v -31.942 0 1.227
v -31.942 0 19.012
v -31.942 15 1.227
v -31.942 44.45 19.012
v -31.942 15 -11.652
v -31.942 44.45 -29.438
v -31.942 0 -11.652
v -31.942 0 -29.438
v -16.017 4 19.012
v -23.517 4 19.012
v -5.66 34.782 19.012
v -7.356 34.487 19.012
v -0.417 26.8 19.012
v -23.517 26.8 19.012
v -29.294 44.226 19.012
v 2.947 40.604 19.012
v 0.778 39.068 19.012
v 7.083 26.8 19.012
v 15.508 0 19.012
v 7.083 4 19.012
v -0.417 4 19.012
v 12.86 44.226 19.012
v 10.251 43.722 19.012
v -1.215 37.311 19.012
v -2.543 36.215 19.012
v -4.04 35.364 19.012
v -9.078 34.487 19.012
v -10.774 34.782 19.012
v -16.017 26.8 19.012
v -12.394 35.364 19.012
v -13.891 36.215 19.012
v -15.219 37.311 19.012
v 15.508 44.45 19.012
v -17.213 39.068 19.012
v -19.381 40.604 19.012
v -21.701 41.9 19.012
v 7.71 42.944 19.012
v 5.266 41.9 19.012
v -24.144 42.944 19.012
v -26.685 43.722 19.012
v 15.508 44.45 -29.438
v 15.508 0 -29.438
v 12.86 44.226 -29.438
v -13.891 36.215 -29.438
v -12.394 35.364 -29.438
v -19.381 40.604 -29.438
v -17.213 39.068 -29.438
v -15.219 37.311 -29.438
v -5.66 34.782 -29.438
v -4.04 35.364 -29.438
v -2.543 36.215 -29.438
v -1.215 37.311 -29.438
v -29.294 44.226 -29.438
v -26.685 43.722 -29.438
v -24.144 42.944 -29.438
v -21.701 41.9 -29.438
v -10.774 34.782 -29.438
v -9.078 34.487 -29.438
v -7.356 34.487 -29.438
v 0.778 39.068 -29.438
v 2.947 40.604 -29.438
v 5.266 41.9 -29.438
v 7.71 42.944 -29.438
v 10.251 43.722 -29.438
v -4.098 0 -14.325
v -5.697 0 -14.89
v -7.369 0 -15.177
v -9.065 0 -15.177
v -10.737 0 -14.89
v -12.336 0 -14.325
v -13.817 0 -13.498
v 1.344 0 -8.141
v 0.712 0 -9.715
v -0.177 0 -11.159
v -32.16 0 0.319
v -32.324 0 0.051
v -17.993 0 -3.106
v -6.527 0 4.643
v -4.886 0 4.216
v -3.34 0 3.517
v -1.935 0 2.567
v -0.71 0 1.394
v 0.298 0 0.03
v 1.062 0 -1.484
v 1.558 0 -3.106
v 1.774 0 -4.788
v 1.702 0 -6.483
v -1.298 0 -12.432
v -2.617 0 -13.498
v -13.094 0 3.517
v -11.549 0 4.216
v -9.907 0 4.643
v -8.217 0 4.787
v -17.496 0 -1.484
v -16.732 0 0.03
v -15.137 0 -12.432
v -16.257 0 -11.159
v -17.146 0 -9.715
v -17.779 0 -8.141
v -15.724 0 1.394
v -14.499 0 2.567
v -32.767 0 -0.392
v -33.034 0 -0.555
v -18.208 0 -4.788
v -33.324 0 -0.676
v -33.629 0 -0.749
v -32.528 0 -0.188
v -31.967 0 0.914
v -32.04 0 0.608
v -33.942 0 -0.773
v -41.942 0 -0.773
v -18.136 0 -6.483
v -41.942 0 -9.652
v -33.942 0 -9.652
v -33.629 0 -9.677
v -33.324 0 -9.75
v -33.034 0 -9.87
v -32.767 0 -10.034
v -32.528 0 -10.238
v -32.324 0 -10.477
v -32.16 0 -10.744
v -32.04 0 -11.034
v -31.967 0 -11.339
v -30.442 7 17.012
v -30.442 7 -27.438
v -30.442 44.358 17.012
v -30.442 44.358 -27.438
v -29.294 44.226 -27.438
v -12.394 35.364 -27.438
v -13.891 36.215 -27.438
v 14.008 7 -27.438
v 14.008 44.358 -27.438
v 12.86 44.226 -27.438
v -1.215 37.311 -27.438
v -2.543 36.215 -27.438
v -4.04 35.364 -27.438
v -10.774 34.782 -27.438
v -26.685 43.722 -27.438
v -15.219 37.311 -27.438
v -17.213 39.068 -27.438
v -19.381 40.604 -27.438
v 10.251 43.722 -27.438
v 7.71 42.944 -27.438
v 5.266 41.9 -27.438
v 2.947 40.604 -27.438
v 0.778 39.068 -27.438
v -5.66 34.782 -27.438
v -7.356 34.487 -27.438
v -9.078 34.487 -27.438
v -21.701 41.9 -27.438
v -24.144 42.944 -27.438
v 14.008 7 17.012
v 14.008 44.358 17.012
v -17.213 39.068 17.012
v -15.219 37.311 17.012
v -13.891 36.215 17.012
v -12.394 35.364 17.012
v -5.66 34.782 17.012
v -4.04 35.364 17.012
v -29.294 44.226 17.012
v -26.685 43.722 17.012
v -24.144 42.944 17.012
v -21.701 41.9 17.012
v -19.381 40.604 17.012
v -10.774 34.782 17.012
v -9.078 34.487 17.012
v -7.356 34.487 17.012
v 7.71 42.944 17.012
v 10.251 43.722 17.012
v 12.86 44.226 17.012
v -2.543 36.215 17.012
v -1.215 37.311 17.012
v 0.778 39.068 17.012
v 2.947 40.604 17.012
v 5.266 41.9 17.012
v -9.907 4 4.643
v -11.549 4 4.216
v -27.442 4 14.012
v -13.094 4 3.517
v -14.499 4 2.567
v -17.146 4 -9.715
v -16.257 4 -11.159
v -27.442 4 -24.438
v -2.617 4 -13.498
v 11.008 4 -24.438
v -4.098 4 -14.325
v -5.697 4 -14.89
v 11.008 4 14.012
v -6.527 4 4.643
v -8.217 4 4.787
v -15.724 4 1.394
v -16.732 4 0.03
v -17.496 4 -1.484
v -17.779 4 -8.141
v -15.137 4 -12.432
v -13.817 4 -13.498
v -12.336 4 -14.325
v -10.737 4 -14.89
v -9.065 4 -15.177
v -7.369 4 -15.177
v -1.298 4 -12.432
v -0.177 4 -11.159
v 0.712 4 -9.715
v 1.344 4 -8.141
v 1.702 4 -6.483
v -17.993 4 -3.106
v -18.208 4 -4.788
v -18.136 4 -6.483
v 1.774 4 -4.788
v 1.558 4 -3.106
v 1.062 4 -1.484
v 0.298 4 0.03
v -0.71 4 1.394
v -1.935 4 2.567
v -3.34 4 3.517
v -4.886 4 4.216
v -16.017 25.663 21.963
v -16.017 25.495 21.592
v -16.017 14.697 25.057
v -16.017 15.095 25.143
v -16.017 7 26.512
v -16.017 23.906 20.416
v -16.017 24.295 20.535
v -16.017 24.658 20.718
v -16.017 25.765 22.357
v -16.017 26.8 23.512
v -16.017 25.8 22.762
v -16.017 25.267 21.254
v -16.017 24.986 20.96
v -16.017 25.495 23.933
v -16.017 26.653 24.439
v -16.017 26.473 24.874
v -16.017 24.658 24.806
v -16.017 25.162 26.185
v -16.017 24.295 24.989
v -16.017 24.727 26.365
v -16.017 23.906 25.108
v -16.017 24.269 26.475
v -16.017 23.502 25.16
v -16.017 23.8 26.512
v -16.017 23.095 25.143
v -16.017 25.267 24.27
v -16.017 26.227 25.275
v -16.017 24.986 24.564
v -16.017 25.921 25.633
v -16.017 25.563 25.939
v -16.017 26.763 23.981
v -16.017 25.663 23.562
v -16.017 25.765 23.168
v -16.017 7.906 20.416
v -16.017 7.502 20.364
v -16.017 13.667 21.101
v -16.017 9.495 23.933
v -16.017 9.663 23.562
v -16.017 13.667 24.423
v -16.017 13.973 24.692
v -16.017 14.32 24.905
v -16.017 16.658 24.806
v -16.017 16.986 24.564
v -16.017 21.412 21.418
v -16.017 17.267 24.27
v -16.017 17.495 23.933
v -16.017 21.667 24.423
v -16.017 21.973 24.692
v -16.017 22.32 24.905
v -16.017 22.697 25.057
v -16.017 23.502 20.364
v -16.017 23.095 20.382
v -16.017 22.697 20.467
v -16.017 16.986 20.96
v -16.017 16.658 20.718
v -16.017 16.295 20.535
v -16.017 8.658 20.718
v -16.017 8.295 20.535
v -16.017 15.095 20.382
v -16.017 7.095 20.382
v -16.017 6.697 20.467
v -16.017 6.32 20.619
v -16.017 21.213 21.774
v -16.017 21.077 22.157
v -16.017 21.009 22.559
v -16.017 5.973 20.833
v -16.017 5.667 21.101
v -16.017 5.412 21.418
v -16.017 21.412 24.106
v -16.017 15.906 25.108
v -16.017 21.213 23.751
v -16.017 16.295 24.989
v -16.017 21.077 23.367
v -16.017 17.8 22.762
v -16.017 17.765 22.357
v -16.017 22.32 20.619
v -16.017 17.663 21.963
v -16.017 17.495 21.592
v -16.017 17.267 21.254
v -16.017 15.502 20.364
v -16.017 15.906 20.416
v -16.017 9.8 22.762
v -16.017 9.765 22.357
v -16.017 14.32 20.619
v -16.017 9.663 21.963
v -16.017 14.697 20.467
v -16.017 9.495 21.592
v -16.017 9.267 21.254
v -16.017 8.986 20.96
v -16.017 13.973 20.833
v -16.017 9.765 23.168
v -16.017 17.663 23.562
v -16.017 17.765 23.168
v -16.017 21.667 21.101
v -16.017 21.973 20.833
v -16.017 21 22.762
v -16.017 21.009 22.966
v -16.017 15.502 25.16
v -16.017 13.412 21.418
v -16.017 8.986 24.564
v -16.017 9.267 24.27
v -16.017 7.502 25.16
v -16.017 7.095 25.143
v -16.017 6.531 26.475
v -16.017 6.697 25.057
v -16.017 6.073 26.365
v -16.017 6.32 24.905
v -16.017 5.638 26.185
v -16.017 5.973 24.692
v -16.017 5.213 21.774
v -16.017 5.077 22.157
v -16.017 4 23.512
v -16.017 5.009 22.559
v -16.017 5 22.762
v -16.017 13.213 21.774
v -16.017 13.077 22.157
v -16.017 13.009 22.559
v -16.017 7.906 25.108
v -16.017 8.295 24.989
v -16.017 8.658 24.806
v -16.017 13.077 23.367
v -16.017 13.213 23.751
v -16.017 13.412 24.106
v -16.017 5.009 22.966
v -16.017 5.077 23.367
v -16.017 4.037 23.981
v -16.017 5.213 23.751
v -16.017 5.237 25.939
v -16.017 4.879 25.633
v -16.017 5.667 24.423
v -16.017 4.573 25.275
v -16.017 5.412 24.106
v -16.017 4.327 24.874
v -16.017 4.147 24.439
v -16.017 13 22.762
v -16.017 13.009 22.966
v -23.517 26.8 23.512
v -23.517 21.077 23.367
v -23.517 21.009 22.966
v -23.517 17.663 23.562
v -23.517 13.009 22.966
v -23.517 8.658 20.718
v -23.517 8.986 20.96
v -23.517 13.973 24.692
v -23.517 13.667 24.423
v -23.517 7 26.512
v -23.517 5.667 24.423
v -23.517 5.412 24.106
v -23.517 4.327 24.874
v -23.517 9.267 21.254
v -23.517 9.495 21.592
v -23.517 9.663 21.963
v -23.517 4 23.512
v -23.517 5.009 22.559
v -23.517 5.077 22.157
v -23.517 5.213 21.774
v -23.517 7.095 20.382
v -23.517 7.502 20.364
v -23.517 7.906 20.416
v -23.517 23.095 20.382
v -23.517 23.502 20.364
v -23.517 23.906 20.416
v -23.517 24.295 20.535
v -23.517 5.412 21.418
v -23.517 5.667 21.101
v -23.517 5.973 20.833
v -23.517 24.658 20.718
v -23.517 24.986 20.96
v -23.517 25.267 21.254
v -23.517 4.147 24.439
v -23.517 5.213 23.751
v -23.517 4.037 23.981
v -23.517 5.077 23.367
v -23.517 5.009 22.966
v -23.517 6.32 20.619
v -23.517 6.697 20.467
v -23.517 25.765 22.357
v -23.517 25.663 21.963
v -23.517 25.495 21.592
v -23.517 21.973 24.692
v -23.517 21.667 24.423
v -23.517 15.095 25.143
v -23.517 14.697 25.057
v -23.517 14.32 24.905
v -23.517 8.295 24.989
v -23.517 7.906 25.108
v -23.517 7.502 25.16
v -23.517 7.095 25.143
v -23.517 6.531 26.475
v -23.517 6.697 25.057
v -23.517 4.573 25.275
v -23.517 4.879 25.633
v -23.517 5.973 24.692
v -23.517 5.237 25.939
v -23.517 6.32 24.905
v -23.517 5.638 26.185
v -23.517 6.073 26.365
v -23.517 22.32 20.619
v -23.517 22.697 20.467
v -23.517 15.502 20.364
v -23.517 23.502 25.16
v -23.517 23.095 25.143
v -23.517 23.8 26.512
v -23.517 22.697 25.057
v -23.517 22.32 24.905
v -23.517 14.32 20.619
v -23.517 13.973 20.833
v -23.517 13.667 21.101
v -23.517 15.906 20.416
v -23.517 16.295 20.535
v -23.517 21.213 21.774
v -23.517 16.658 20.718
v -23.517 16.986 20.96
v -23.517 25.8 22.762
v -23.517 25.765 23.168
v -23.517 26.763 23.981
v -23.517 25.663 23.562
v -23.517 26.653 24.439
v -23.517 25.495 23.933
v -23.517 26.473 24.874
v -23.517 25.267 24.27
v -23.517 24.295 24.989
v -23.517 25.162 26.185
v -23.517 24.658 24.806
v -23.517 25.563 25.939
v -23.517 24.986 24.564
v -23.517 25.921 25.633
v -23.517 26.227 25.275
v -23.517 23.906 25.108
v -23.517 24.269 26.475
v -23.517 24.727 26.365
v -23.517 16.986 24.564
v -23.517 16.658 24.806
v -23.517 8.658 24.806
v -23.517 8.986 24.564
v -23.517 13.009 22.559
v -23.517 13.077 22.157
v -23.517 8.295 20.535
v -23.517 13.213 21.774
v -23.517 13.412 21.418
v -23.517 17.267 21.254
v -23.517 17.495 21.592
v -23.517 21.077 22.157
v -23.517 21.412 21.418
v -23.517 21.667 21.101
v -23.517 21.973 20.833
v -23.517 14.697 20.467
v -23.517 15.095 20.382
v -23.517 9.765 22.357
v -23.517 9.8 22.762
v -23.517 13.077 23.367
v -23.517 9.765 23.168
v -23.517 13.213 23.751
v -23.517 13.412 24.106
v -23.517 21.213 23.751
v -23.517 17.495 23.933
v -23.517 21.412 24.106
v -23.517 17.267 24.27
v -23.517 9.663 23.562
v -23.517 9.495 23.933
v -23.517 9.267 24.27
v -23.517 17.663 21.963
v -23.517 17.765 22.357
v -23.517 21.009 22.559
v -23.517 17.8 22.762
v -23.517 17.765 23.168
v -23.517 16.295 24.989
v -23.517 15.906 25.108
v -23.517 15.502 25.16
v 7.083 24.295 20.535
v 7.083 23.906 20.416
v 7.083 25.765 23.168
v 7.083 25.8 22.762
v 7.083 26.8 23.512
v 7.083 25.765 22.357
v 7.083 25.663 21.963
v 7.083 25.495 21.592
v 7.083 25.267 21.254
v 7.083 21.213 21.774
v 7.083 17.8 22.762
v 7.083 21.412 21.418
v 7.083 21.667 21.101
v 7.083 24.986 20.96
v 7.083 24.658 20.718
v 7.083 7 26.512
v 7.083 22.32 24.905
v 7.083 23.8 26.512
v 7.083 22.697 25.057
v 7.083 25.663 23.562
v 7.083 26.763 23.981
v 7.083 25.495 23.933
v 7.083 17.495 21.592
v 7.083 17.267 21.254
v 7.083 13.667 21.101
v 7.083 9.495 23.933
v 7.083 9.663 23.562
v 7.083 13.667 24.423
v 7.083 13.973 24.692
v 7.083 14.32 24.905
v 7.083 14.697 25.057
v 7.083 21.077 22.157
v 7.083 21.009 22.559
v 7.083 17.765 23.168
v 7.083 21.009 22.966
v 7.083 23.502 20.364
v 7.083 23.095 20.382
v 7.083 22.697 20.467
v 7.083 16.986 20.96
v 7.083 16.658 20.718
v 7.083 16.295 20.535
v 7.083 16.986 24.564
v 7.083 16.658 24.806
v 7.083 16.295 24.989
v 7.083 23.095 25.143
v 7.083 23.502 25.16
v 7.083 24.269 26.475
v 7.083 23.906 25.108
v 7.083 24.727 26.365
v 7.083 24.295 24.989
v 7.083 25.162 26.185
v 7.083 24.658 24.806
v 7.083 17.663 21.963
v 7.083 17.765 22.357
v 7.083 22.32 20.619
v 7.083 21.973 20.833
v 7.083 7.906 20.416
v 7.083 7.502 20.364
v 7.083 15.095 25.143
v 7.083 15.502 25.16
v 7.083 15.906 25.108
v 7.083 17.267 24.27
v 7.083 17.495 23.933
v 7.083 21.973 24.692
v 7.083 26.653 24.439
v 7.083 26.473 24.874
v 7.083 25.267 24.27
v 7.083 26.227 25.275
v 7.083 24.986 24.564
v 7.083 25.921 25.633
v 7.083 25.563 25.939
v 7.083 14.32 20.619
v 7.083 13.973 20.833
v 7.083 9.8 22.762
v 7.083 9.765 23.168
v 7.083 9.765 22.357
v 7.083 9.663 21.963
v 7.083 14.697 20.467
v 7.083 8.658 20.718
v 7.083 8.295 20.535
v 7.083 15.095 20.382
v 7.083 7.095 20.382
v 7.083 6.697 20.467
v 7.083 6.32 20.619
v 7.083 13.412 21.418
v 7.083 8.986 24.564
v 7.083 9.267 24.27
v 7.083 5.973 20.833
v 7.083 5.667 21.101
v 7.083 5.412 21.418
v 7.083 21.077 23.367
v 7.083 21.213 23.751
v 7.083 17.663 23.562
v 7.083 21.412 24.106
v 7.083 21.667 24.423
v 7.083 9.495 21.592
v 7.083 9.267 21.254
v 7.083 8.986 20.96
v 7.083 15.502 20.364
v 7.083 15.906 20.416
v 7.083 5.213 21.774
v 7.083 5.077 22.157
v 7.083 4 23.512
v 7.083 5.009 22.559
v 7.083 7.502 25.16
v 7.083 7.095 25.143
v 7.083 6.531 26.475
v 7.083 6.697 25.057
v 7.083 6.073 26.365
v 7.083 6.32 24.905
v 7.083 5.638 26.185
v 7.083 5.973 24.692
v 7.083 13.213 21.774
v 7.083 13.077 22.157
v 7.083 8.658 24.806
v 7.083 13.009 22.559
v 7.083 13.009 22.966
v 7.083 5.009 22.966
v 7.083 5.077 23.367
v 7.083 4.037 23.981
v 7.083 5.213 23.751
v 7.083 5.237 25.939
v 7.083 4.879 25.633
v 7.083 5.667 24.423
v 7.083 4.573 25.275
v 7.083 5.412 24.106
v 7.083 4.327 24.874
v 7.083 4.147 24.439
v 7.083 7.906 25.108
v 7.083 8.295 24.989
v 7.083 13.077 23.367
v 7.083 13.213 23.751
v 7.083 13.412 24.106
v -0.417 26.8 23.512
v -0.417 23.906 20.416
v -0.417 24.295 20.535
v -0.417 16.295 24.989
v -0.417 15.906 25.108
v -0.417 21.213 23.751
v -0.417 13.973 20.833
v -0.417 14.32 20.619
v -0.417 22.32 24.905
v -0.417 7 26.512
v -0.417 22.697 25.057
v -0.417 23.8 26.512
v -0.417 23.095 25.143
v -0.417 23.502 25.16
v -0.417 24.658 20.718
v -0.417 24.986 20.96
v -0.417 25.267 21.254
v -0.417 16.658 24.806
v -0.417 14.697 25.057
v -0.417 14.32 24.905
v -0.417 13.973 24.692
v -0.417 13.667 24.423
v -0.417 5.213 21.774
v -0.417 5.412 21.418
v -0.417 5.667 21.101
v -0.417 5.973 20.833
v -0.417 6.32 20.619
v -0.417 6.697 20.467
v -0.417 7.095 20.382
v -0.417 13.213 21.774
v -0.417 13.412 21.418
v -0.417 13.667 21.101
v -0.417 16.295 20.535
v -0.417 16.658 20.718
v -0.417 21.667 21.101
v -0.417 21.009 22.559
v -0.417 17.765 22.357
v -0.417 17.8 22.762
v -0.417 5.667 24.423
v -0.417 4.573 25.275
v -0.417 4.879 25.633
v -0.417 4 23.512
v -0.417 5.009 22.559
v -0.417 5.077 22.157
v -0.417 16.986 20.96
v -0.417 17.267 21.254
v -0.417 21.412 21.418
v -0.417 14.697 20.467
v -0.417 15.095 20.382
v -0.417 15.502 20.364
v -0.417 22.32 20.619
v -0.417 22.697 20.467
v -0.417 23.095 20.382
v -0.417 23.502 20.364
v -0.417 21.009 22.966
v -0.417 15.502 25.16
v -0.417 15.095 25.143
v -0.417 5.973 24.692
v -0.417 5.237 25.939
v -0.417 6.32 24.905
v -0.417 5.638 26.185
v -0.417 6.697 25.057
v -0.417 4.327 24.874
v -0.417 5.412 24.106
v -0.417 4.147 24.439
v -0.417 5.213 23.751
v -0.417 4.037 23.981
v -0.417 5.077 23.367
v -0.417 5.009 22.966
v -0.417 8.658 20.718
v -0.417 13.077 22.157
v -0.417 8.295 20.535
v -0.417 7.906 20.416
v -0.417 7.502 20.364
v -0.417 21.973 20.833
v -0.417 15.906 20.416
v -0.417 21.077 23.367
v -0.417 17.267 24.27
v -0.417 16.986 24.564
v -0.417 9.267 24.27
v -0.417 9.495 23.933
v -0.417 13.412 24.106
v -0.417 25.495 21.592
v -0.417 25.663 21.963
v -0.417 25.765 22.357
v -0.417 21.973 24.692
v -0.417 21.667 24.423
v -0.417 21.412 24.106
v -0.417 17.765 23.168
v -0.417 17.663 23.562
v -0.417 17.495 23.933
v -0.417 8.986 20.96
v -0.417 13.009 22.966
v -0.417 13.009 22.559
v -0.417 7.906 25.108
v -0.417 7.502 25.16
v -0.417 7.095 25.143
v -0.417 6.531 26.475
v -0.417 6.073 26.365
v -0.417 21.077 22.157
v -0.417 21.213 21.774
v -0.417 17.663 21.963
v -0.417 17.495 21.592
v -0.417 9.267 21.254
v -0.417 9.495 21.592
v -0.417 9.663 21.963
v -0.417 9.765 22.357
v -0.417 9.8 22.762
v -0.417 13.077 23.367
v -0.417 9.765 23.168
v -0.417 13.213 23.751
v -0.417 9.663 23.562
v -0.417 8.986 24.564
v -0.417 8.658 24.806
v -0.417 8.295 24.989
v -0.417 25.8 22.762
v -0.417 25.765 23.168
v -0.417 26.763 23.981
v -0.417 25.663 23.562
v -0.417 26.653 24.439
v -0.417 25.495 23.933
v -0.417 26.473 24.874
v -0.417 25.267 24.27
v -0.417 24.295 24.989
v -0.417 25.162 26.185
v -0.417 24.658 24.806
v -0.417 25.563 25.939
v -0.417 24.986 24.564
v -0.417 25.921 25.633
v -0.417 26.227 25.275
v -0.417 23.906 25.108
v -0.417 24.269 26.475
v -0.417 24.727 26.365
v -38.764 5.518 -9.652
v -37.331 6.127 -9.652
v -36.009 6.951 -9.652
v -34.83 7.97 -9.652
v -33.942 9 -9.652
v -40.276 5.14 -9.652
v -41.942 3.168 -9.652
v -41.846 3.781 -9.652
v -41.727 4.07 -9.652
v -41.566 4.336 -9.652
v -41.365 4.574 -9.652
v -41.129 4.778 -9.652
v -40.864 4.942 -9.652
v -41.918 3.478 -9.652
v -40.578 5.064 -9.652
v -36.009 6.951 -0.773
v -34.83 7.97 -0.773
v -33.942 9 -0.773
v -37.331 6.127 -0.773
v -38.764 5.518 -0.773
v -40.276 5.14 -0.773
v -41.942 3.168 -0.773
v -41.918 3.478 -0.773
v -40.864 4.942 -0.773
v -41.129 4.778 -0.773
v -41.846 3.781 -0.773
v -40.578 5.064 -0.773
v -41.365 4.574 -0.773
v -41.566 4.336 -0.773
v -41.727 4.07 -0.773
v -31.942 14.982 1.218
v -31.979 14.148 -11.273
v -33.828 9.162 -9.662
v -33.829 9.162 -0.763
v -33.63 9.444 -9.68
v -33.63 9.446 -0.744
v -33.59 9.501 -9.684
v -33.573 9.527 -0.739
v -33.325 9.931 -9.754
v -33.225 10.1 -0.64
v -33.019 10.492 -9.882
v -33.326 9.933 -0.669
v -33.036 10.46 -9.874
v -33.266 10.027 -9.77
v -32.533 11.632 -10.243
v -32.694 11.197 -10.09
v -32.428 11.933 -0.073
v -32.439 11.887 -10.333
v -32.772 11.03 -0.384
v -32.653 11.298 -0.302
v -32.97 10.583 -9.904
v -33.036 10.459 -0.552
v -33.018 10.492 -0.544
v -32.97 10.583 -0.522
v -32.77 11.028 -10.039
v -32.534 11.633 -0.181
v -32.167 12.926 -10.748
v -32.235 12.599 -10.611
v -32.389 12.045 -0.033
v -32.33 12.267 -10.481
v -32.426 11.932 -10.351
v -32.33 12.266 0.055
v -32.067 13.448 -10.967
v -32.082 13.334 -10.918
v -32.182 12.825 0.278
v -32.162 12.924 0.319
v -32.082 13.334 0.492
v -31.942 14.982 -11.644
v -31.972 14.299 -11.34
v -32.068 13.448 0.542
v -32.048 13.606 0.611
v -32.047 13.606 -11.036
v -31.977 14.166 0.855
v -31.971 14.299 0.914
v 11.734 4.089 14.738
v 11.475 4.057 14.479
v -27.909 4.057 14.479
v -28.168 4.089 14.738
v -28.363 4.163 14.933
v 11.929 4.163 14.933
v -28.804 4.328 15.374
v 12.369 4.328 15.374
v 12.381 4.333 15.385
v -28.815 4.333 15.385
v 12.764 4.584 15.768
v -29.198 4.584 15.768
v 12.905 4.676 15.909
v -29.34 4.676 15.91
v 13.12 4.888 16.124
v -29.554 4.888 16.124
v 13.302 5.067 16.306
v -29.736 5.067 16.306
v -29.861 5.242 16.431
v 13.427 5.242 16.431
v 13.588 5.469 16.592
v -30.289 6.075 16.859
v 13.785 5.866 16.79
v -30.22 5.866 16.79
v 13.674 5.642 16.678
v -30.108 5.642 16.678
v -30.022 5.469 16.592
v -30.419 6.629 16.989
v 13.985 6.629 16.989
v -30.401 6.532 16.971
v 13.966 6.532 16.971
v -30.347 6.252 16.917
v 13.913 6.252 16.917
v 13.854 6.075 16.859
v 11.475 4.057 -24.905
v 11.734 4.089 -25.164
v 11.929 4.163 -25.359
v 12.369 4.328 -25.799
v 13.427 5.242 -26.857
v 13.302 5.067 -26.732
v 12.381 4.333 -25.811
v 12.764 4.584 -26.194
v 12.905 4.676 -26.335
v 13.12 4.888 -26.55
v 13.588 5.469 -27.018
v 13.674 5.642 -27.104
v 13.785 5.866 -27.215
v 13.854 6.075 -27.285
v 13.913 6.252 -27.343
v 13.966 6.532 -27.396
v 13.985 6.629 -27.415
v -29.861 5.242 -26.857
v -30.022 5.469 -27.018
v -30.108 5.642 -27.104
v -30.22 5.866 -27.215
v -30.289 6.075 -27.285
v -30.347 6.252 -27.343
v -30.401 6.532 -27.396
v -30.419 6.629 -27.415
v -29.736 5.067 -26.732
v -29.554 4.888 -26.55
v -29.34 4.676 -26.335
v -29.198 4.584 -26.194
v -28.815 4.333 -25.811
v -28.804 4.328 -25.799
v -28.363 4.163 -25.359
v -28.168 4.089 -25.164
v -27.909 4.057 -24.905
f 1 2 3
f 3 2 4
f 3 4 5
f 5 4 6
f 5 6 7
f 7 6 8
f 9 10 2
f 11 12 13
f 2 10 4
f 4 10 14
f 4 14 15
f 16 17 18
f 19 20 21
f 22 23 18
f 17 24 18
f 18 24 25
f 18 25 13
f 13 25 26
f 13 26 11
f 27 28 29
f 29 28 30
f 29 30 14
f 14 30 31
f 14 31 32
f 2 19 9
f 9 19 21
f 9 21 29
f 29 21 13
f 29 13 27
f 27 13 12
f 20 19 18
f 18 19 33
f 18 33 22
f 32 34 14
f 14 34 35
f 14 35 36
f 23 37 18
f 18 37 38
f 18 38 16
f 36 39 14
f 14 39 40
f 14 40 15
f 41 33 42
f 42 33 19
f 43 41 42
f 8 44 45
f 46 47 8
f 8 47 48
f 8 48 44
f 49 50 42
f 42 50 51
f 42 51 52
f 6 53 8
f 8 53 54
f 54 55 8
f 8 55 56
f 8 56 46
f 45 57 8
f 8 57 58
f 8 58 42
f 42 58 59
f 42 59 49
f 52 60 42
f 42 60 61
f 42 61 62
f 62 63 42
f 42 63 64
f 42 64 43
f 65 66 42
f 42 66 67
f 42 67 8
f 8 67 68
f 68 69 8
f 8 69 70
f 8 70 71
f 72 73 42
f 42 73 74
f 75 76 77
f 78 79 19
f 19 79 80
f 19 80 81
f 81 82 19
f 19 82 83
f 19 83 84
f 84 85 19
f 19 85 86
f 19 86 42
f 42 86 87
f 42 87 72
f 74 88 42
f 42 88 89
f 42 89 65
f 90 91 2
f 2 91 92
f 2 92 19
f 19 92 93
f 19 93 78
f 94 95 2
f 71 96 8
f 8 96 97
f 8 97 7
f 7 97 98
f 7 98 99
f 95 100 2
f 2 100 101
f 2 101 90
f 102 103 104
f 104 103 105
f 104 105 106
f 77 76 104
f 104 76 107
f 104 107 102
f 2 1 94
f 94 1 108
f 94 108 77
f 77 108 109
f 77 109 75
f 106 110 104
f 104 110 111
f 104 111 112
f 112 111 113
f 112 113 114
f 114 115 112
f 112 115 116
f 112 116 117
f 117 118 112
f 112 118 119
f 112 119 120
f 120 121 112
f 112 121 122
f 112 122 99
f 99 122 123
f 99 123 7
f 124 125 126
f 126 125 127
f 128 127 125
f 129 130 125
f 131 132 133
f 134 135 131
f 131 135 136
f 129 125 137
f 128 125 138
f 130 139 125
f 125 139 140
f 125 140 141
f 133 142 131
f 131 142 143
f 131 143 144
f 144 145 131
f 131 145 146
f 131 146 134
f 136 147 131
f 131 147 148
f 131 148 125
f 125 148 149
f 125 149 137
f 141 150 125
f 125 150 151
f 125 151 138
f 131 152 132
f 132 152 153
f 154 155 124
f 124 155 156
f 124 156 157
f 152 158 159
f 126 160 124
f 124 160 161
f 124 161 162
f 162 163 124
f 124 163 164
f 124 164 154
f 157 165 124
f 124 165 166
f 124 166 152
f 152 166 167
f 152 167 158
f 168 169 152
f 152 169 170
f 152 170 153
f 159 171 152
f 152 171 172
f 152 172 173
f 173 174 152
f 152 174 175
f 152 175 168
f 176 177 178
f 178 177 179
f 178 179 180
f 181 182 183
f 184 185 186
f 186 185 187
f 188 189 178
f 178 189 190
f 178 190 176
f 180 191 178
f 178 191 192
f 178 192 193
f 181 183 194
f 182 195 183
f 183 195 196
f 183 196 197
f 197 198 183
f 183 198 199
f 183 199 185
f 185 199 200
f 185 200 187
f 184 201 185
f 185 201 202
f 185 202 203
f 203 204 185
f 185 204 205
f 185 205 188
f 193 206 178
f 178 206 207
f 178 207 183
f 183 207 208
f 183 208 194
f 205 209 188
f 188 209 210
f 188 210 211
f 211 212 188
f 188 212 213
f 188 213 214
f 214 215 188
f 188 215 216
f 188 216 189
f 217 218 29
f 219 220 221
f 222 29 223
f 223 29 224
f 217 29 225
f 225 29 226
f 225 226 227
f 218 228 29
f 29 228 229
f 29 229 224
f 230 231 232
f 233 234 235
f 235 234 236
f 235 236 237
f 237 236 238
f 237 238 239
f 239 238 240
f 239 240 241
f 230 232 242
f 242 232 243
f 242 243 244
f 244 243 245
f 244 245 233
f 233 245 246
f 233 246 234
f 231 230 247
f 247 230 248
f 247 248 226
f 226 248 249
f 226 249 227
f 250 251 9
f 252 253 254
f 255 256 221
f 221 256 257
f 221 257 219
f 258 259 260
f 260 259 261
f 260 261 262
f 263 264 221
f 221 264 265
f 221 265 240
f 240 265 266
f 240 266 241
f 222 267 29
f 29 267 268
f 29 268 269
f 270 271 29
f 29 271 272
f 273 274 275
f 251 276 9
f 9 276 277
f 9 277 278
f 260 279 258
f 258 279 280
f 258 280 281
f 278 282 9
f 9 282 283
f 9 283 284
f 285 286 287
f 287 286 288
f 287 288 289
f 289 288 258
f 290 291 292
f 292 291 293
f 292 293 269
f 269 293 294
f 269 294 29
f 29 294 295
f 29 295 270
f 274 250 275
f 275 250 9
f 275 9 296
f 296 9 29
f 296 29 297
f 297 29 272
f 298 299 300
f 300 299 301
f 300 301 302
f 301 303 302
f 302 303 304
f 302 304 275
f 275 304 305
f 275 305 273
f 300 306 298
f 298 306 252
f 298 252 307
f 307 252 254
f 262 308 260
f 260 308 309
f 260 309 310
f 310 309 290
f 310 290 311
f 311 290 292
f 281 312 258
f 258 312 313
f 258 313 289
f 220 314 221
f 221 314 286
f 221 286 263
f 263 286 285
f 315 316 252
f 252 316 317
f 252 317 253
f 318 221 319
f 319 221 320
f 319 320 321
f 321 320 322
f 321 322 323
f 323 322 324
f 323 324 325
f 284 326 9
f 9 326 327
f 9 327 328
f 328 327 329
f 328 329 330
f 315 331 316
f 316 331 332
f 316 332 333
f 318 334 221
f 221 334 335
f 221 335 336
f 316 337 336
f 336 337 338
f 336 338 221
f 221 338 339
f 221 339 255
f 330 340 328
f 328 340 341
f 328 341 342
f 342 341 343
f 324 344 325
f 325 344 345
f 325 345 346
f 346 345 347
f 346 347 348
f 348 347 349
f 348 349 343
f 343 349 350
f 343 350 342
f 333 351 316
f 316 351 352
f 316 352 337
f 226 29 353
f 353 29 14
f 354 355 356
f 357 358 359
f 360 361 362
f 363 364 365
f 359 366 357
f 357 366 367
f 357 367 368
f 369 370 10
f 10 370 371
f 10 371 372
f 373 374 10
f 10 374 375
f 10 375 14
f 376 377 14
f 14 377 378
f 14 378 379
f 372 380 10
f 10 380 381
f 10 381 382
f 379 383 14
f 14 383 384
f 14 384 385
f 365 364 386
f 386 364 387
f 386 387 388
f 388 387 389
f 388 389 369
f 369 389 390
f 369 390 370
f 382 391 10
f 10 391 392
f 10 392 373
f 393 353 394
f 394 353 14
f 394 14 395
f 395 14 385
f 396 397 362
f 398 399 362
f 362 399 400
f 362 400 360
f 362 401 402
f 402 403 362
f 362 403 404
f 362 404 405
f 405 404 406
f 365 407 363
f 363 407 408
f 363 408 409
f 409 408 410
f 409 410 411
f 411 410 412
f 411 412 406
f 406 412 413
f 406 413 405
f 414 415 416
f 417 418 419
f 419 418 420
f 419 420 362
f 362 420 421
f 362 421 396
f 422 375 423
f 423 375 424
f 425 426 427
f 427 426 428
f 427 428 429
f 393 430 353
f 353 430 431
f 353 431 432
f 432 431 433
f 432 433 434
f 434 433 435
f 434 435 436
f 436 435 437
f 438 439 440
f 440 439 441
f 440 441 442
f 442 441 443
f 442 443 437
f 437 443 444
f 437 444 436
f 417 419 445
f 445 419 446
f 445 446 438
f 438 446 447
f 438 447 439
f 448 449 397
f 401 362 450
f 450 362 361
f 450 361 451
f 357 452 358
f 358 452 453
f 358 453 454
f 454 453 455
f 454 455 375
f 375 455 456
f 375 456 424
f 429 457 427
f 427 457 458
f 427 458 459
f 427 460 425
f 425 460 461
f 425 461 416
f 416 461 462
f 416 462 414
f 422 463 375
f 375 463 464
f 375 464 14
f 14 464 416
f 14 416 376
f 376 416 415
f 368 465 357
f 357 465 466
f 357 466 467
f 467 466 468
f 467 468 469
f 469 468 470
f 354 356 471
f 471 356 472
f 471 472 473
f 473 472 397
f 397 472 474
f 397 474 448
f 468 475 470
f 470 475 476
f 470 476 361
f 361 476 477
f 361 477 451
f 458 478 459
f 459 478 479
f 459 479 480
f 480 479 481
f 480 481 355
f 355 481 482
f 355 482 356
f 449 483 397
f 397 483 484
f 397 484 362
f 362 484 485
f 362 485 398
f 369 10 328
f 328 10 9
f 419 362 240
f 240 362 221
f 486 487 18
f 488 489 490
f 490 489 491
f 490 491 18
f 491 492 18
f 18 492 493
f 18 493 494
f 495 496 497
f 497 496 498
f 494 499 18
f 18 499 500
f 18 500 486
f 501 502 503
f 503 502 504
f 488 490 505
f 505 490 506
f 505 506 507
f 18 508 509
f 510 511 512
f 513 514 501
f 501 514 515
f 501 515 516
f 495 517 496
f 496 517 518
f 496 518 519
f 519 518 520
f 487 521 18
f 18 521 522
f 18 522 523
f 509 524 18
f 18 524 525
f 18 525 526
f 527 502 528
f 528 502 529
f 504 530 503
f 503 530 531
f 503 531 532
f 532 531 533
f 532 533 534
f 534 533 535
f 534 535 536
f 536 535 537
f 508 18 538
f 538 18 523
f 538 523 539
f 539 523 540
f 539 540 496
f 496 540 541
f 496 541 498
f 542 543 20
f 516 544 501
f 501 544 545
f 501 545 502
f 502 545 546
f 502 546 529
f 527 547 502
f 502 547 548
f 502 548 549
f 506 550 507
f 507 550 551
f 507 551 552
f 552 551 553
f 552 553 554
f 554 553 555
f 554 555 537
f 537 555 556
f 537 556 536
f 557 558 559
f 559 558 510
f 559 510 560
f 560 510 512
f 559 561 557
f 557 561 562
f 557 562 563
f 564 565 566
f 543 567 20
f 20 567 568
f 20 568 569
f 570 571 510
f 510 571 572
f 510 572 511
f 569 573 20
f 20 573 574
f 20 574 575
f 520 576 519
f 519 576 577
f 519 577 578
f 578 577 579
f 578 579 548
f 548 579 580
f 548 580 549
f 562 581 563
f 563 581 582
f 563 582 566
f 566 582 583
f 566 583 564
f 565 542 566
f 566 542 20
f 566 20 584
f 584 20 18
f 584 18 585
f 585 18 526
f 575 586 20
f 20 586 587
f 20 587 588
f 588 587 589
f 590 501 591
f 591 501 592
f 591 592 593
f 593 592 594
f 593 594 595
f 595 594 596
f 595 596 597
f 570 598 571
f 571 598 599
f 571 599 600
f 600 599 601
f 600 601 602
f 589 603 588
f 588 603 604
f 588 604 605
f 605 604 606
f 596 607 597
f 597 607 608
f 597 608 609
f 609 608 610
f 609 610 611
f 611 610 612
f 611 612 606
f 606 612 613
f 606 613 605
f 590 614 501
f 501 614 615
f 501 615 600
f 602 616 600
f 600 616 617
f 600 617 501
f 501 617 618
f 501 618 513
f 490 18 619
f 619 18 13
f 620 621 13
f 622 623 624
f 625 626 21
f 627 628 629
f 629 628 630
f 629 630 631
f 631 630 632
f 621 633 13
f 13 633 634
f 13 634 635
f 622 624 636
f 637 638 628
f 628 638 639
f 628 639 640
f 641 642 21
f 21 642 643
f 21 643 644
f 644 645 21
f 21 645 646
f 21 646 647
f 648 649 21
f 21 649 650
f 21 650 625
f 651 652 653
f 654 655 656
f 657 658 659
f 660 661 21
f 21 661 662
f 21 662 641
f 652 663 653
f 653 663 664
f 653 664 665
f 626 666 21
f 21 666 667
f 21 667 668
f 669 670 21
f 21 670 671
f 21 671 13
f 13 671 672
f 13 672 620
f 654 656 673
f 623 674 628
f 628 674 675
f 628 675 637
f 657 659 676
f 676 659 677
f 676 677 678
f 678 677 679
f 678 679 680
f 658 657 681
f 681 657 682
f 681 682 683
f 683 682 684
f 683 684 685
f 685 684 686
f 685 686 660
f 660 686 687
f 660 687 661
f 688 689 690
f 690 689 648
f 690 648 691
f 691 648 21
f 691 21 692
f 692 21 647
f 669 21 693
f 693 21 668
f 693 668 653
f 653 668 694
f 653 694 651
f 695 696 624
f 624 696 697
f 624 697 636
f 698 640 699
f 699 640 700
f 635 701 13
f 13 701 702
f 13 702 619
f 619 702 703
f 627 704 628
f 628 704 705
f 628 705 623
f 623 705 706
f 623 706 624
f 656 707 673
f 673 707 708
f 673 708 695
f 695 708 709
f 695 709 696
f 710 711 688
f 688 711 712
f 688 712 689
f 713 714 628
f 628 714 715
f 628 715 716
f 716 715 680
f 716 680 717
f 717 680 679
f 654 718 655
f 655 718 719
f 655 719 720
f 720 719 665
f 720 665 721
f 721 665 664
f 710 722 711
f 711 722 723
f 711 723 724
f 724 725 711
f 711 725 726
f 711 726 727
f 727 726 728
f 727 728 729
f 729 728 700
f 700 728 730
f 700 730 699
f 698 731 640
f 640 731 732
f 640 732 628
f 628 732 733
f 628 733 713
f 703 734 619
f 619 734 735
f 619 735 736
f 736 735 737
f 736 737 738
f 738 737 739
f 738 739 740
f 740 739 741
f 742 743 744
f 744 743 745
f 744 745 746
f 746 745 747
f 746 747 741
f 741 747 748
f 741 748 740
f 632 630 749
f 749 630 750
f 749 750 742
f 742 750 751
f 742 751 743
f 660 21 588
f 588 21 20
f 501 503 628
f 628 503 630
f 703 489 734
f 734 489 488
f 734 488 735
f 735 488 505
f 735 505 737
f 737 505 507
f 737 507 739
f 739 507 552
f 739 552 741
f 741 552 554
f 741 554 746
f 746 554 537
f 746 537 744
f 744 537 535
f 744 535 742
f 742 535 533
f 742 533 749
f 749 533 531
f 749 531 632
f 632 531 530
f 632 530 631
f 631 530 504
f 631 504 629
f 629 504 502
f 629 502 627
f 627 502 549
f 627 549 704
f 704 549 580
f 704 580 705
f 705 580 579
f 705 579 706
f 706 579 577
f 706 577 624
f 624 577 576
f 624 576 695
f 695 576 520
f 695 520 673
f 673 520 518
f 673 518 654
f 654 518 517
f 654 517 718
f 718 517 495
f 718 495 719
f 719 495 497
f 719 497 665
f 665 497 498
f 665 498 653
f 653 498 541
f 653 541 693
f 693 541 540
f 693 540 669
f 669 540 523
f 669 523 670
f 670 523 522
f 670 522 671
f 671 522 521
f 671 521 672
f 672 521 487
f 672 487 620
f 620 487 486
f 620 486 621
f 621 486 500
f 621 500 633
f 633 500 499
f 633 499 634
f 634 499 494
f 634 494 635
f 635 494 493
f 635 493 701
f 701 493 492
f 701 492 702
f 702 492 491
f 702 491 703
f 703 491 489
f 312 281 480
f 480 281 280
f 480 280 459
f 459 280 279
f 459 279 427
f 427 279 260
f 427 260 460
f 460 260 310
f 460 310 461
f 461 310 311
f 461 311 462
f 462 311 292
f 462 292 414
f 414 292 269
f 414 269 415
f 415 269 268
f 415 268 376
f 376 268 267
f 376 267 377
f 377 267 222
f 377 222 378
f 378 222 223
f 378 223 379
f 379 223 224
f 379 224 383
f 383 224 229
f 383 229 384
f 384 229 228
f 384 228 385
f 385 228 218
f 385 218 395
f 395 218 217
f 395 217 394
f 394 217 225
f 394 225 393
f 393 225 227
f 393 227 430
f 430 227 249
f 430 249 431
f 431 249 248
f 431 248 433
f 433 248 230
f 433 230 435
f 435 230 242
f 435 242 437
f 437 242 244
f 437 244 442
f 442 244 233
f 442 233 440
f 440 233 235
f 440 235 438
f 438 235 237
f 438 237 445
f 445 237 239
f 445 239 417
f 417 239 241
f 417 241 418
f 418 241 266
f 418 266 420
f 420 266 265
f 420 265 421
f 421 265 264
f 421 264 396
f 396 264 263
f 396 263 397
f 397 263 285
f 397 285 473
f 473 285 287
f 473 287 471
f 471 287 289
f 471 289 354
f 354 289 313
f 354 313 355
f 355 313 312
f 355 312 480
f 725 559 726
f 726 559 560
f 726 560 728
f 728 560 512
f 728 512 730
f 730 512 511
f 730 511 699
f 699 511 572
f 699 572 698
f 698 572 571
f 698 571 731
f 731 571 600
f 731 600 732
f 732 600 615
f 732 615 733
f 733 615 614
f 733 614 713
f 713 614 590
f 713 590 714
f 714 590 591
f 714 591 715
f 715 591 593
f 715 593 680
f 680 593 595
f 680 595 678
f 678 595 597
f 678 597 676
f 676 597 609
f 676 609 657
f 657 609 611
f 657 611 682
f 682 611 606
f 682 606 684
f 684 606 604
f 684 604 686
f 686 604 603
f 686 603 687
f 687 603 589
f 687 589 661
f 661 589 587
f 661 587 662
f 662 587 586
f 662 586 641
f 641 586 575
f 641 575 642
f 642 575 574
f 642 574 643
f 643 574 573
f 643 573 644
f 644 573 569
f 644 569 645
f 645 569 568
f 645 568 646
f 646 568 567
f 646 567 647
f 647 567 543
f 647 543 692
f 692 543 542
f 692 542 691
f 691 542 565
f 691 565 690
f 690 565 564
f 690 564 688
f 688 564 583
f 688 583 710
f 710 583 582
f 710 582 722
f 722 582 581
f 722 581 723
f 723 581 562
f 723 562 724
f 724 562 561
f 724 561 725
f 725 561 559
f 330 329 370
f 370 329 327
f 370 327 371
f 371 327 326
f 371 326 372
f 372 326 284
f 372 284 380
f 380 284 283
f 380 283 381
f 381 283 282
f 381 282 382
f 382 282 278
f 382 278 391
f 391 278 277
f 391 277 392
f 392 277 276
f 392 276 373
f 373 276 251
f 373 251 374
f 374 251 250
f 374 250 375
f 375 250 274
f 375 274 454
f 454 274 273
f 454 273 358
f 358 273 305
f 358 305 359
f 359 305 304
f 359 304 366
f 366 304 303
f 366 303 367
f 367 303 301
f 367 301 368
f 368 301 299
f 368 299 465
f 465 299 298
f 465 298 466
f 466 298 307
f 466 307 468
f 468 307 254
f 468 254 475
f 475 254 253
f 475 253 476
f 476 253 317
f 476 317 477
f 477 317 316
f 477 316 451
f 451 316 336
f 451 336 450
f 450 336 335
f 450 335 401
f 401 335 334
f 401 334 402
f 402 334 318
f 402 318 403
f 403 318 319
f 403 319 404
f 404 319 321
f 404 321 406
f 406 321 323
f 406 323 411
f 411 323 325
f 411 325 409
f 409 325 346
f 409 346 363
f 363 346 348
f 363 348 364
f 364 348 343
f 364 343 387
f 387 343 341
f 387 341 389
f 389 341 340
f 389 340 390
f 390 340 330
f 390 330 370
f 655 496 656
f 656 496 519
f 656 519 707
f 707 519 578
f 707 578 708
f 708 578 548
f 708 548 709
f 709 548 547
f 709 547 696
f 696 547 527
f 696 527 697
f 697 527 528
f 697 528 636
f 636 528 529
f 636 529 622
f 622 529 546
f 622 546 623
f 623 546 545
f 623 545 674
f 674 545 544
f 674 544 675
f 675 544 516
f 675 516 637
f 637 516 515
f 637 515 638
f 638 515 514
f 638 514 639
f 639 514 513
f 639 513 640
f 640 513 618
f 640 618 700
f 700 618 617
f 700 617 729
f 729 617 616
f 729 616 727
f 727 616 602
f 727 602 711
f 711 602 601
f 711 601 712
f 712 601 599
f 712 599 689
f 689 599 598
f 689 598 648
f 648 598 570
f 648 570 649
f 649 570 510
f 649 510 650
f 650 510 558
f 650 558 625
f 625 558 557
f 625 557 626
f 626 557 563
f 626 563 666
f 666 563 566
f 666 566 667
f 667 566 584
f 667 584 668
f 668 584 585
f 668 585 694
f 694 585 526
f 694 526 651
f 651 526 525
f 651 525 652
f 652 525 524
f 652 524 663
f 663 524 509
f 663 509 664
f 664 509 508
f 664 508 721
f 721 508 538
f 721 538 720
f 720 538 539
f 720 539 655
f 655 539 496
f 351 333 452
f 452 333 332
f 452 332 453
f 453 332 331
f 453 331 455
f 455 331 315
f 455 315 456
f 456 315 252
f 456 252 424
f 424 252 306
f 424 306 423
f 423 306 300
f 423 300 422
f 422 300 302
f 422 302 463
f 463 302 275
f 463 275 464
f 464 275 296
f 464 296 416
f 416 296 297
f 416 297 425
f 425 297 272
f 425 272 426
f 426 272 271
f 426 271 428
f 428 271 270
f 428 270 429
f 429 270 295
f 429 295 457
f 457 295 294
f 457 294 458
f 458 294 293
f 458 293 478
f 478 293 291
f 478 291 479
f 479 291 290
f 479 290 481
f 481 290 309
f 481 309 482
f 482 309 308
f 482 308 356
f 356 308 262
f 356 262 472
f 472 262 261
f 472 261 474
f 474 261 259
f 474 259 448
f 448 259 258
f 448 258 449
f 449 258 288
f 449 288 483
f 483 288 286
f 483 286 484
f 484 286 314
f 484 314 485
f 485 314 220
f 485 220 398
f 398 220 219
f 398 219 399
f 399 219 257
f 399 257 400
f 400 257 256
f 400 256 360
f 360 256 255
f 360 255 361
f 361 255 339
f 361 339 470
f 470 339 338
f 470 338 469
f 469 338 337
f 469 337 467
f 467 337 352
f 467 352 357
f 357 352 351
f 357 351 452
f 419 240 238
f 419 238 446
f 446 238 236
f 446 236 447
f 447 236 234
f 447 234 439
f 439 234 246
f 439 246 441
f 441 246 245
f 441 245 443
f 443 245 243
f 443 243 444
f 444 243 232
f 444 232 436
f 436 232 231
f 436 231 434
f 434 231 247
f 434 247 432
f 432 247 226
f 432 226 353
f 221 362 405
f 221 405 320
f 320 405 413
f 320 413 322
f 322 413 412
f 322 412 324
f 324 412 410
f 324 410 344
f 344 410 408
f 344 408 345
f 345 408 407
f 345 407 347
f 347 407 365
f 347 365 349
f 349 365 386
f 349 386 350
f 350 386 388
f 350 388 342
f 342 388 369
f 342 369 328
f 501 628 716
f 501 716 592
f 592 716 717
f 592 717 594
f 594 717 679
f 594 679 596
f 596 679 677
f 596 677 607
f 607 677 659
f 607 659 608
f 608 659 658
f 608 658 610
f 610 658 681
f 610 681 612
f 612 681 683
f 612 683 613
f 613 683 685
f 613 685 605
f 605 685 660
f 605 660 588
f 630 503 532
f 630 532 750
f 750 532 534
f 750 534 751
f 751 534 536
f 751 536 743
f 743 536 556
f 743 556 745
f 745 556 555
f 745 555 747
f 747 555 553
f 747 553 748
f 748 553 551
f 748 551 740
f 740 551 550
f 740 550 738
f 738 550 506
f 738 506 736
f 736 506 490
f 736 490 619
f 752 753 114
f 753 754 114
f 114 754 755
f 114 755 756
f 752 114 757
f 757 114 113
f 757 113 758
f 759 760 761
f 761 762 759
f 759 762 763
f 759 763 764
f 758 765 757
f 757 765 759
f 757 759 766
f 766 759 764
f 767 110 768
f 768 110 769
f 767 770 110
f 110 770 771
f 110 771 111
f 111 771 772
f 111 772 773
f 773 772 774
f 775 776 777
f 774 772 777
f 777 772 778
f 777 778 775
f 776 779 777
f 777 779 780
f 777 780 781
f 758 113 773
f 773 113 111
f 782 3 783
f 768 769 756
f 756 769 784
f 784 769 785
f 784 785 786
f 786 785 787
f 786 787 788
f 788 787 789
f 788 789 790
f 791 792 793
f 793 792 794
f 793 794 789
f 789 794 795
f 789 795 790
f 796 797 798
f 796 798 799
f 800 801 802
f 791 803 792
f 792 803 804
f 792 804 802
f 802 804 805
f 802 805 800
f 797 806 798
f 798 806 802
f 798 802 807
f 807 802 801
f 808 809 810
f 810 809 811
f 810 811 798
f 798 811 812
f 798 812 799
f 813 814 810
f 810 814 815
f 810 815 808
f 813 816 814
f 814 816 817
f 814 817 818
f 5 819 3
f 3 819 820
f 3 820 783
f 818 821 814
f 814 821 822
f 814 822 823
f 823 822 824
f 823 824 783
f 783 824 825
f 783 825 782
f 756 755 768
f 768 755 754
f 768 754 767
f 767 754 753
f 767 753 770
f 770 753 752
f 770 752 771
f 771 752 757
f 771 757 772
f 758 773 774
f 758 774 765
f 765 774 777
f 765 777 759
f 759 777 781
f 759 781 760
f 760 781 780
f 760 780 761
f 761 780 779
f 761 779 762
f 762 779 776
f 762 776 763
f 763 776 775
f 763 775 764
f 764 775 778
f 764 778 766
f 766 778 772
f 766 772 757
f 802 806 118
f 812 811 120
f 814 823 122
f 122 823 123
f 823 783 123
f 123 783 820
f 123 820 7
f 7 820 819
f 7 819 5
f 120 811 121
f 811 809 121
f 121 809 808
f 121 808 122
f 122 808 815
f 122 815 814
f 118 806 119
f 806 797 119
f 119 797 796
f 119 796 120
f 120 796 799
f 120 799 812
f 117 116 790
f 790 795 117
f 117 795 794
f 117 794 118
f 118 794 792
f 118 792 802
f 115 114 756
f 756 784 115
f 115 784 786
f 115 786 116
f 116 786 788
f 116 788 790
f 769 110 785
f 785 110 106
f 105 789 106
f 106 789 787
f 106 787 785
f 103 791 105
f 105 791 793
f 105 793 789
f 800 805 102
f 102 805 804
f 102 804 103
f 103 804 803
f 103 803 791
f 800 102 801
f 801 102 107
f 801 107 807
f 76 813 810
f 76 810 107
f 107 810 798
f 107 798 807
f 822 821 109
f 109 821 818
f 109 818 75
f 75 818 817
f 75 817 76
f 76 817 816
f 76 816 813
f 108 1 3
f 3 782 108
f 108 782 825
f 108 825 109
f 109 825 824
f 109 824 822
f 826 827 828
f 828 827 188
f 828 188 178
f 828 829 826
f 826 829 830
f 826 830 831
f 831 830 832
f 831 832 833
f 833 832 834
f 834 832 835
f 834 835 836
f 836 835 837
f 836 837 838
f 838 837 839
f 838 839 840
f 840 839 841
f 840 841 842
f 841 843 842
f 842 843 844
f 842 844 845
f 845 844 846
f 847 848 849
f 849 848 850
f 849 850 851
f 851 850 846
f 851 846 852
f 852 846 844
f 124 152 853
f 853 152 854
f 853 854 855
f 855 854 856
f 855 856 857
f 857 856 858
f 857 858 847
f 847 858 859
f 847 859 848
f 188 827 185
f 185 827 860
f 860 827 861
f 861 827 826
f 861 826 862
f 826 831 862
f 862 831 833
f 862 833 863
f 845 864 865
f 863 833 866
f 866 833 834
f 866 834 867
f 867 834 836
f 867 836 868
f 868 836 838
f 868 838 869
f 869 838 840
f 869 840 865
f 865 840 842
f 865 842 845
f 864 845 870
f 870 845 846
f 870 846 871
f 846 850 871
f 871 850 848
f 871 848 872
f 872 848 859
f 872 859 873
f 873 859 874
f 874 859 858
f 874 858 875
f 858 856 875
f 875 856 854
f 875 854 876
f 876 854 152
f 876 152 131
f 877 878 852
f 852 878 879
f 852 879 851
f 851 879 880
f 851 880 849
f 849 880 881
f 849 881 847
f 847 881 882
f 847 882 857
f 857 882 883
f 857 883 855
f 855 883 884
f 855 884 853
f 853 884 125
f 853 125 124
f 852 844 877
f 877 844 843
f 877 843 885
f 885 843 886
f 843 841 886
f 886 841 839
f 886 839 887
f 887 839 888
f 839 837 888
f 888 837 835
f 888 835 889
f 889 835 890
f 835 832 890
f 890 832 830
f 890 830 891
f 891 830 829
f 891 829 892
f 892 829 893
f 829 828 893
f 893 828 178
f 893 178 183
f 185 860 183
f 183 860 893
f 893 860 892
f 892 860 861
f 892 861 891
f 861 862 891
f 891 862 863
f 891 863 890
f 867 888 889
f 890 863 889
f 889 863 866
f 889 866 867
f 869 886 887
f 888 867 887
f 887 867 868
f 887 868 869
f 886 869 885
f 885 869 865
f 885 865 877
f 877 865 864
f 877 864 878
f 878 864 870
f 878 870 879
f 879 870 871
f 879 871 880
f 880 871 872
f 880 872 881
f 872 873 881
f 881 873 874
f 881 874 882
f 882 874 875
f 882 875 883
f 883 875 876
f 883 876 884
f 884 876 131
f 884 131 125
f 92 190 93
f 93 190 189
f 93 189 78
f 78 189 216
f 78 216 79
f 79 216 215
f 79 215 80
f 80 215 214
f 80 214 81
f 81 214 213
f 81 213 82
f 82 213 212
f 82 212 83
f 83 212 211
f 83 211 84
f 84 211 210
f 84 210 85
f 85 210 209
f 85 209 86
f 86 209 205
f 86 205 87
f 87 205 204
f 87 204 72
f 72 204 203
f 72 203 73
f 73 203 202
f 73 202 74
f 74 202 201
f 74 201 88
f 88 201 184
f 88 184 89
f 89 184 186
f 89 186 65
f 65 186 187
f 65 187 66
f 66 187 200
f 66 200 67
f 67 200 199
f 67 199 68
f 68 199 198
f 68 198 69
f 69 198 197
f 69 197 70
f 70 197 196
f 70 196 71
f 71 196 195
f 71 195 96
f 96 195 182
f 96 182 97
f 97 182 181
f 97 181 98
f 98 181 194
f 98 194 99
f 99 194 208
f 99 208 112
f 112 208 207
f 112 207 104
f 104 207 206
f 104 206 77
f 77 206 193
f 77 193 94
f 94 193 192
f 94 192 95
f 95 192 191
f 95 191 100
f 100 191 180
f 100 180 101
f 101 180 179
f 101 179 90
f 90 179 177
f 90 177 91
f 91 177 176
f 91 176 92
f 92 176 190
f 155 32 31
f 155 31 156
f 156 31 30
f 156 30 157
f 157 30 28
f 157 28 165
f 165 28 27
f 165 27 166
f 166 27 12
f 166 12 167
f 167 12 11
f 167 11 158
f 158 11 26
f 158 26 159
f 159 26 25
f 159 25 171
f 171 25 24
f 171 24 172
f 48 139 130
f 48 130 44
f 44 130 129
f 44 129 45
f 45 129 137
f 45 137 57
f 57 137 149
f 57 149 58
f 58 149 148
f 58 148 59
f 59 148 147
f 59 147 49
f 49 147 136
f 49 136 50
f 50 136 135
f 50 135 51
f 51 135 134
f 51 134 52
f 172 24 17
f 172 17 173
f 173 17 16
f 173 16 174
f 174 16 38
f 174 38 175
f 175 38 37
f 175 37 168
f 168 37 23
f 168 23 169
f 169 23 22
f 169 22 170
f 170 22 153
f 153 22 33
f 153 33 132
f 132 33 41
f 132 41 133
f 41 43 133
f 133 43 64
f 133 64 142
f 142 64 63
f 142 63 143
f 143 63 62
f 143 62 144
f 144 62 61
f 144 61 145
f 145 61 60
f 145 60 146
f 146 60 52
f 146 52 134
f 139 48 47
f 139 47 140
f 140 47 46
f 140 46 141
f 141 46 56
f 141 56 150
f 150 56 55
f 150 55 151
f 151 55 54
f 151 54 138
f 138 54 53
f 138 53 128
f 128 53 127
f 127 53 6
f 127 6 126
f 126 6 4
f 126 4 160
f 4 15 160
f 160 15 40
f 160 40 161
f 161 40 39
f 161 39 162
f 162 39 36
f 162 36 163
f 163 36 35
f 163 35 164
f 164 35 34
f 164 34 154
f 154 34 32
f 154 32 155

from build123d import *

# Parameters (mm, degrees)
SKETCH1_W               = 47.45
SKETCH1_H               = 48.45
BOSS_EXTRUDE1_DEPTH     = 44.45
SKETCH2_W               = 44.45
SKETCH2_H               = 44.45
CUT_EXTRUDE1_DEPTH      = 40.45
SKETCH3_W               = 7.5
SKETCH3_H               = 22.8
BOSS_EXTRUDE2_DEPTH     = 7.5
SKETCH4_R               = 2.4
CUT_EXTRUDE2_DEPTH      = 67.070738008
FILLET1_R               = 3
SKETCH5_W               = 8.878843291
SKETCH5_H               = 5
BOSS_EXTRUDE3_DEPTH     = 10
FILLET2_R               = 10
FILLET3_R               = 2
FILLET4_R               = 2
FILLET5_R               = 3
SKETCH6_R               = 10
CUT_EXTRUDE3_DEPTH      = 10
CUT_EXTRUDE5_DEPTH      = 83.857410319
CUT_EXTRUDE5_DEPTH_BACK = 83.857410319
FILLET6_R               = 25


# Some blends are built 0.0001 mm under size
with BuildPart() as part:
    # Sketch1 → Boss-Extrude1 (new body)
    with BuildSketch(Plane(origin=(0, 0, 0), x_dir=(1, 0, 0), z_dir=(0, 1, 0))):
        with Locations((-8.217167759, 5.212888782)):
            Rectangle(SKETCH1_W, SKETCH1_H)
    extrude(amount=BOSS_EXTRUDE1_DEPTH)

    # Sketch2 → Cut-Extrude1 (cut)
    with BuildSketch(Plane(origin=(0, 44.45, 0), x_dir=(1, 0, 0), z_dir=(0, 1, 0))):
        with Locations((-8.217167759, 5.212888782)):
            Rectangle(SKETCH2_W, SKETCH2_H)
    extrude(amount=-CUT_EXTRUDE1_DEPTH, mode=Mode.SUBTRACT)

    # Sketch3 → Boss-Extrude2 (add)
    with BuildSketch(Plane.XY.offset(19.012111218)):
        with Locations((-19.767167759, 15.4)):
            Rectangle(SKETCH3_W, SKETCH3_H)
        with Locations((3.332832241, 15.4)):
            Rectangle(SKETCH3_W, SKETCH3_H)
    extrude(amount=BOSS_EXTRUDE2_DEPTH)

    # Sketch4 → Cut-Extrude2 (cut, through all)
    with BuildSketch(Plane(origin=(7.082832241, 0, 0), x_dir=(0, 0, -1), z_dir=(1, 0, 0))):
        with Locations(Location((-22.762111218, 23.4, 0), (0, 0, 90))):
            Circle(SKETCH4_R)
        with Locations(Location((-22.762111218, 7.4, 0), (0, 0, 90))):
            Circle(SKETCH4_R)
        with Locations(Location((-22.762111218, 15.4, 0), (0, 0, 90))):
            Circle(SKETCH4_R)
    extrude(amount=-CUT_EXTRUDE2_DEPTH, mode=Mode.SUBTRACT)

    # Fillet1
    fillet1_edges = [part.edges().sort_by_distance(p)[0] for p in [
        (-19.767167759, 26.8, 26.512111218),
        (-19.767167759, 4, 26.512111218),
        (3.332832241, 26.8, 26.512111218),
        (3.332832241, 4, 26.512111218),
    ]]
    fillet(fillet1_edges, radius=FILLET1_R)

    # Sketch5 → Boss-Extrude3 (add)
    with BuildSketch(Plane.ZY.offset(31.942167759)):
        with Locations((-5.212888782, 2.5)):
            Rectangle(SKETCH5_W, SKETCH5_H)
    extrude(amount=BOSS_EXTRUDE3_DEPTH)

    # Fillet2
    fillet2_edges = [part.edges().sort_by_distance(p)[0] for p in [
        (-31.942167759, 5, -5.212888782),
    ]]
    fillet(fillet2_edges, radius=FILLET2_R - 0.0001)  # a hair under: the kernel refuses the full size

    # Fillet3
    fillet3_edges = [part.edges().sort_by_distance(p)[0] for p in [
        (-41.942167759, 5, -5.212888782),
    ]]
    fillet(fillet3_edges, radius=FILLET3_R)

    # Fillet4
    fillet4_edges = [part.edges().sort_by_distance(p)[0] for p in [
        (-31.942167759, 7.49995, -9.652310427),
        (-31.942167759, 7.49995, -0.773467136),
    ]]
    fillet(fillet4_edges, radius=FILLET4_R)

    # Fillet5
    fillet5_edges = [part.edges().sort_by_distance(p)[0] for p in [
        (-30.442167759, 4, -5.212888782),
        (-8.217167759, 4, -27.437888782),
        (14.007832241, 4, -5.212888782),
        (-8.217167759, 4, 17.012111218),
    ]]
    fillet(fillet5_edges, radius=FILLET5_R)

    # Sketch6 → Cut-Extrude3 (cut)
    with BuildSketch(Plane(origin=(0, 4, 0), x_dir=(1, 0, 0), z_dir=(0, 1, 0))):
        with Locations(Location((-8.217167759, 5.212888782, 0), (0, 0, 270))):
            Circle(SKETCH6_R)
    extrude(amount=-CUT_EXTRUDE3_DEPTH, mode=Mode.SUBTRACT)

    # Sketch7 → Cut-Extrude5 (cut, two sides: drawn at the far end of the back side and taken through both)
    with BuildSketch(Plane(origin=(0, 0, -29.437888782), x_dir=(-1, 0, 0), z_dir=(0, 0, -1)).offset(-CUT_EXTRUDE5_DEPTH_BACK)):
        with BuildLine():
            Line((18.217167759, 179.152496248), (18.217167759, 44.45))
            ThreePointArc((18.217167759, 44.45), (8.217167759, 34.45), (-1.782832241, 44.45))
            Line((-1.782832241, 44.45), (-1.782832241, 179.152496248))
            Line((-1.782832241, 179.152496248), (-1.782832241, 448.557488745))
            Line((-1.782832241, 448.557488745), (18.217167759, 448.557488745))
            Line((18.217167759, 448.557488745), (18.217167759, 179.152496248))
        make_face()
    extrude(amount=CUT_EXTRUDE5_DEPTH + CUT_EXTRUDE5_DEPTH_BACK, mode=Mode.SUBTRACT)

    # Fillet6
    # the kernel refuses this fillet: 25 mm, written as the material it takes off along each edge
    with BuildSketch(Plane(origin=(1.782832241, 44.45, -17.300388782), x_dir=(1, 0, 0), z_dir=(0, 0, 1)), Plane(origin=(1.782832241, 44.45, -63.750388782), x_dir=(1, 0, 0), z_dir=(0, 0, 1))) as fillet6_piece_1:
        with BuildLine():
            CenterArc((14.507389357, -24.987754339), FILLET6_R, 91.793397152, 42.650547852)
            Line((-2.997888755, -7.139358382), (-3.347994317, -6.782390463))
            ThreePointArc((-3.347994317, -6.782390463), (-1.240888915, -3.678039288), (-0.5, 0))
            Line((-0.5, 0), (0, 0.5))
            ThreePointArc((0, 0.5), (6.8625, 0.5), (13.709352213, 0.499755087))
            Line((13.709352213, 0.499755087), (13.725, 0))
        make_face()
    extrude(amount=70.625, mode=Mode.SUBTRACT)
    with BuildSketch(Plane(origin=(-18.217167759, 44.45, -17.300388782), x_dir=(-1, 0, 0), z_dir=(0, 0, 1)), Plane(origin=(-18.217167759, 44.45, -63.750388782), x_dir=(-1, 0, 0), z_dir=(0, 0, 1))) as fillet6_piece_2:
        with BuildLine():
            CenterArc((14.507389357, 24.987754339), FILLET6_R, 225.556054997, 42.650547852)
            Line((-2.997888755, 7.139358382), (-3.347994317, 6.782390463))
            ThreePointArc((-3.347994317, 6.782390463), (-1.240888915, 3.678039288), (-0.5, 0))
            Line((-0.5, 0), (0, -0.5))
            ThreePointArc((0, -0.5), (6.8625, -0.5), (13.709352213, -0.499755087))
            Line((13.709352213, -0.499755087), (13.725, 0))
        make_face()
    extrude(amount=70.625, mode=Mode.SUBTRACT)


solid = part.part
